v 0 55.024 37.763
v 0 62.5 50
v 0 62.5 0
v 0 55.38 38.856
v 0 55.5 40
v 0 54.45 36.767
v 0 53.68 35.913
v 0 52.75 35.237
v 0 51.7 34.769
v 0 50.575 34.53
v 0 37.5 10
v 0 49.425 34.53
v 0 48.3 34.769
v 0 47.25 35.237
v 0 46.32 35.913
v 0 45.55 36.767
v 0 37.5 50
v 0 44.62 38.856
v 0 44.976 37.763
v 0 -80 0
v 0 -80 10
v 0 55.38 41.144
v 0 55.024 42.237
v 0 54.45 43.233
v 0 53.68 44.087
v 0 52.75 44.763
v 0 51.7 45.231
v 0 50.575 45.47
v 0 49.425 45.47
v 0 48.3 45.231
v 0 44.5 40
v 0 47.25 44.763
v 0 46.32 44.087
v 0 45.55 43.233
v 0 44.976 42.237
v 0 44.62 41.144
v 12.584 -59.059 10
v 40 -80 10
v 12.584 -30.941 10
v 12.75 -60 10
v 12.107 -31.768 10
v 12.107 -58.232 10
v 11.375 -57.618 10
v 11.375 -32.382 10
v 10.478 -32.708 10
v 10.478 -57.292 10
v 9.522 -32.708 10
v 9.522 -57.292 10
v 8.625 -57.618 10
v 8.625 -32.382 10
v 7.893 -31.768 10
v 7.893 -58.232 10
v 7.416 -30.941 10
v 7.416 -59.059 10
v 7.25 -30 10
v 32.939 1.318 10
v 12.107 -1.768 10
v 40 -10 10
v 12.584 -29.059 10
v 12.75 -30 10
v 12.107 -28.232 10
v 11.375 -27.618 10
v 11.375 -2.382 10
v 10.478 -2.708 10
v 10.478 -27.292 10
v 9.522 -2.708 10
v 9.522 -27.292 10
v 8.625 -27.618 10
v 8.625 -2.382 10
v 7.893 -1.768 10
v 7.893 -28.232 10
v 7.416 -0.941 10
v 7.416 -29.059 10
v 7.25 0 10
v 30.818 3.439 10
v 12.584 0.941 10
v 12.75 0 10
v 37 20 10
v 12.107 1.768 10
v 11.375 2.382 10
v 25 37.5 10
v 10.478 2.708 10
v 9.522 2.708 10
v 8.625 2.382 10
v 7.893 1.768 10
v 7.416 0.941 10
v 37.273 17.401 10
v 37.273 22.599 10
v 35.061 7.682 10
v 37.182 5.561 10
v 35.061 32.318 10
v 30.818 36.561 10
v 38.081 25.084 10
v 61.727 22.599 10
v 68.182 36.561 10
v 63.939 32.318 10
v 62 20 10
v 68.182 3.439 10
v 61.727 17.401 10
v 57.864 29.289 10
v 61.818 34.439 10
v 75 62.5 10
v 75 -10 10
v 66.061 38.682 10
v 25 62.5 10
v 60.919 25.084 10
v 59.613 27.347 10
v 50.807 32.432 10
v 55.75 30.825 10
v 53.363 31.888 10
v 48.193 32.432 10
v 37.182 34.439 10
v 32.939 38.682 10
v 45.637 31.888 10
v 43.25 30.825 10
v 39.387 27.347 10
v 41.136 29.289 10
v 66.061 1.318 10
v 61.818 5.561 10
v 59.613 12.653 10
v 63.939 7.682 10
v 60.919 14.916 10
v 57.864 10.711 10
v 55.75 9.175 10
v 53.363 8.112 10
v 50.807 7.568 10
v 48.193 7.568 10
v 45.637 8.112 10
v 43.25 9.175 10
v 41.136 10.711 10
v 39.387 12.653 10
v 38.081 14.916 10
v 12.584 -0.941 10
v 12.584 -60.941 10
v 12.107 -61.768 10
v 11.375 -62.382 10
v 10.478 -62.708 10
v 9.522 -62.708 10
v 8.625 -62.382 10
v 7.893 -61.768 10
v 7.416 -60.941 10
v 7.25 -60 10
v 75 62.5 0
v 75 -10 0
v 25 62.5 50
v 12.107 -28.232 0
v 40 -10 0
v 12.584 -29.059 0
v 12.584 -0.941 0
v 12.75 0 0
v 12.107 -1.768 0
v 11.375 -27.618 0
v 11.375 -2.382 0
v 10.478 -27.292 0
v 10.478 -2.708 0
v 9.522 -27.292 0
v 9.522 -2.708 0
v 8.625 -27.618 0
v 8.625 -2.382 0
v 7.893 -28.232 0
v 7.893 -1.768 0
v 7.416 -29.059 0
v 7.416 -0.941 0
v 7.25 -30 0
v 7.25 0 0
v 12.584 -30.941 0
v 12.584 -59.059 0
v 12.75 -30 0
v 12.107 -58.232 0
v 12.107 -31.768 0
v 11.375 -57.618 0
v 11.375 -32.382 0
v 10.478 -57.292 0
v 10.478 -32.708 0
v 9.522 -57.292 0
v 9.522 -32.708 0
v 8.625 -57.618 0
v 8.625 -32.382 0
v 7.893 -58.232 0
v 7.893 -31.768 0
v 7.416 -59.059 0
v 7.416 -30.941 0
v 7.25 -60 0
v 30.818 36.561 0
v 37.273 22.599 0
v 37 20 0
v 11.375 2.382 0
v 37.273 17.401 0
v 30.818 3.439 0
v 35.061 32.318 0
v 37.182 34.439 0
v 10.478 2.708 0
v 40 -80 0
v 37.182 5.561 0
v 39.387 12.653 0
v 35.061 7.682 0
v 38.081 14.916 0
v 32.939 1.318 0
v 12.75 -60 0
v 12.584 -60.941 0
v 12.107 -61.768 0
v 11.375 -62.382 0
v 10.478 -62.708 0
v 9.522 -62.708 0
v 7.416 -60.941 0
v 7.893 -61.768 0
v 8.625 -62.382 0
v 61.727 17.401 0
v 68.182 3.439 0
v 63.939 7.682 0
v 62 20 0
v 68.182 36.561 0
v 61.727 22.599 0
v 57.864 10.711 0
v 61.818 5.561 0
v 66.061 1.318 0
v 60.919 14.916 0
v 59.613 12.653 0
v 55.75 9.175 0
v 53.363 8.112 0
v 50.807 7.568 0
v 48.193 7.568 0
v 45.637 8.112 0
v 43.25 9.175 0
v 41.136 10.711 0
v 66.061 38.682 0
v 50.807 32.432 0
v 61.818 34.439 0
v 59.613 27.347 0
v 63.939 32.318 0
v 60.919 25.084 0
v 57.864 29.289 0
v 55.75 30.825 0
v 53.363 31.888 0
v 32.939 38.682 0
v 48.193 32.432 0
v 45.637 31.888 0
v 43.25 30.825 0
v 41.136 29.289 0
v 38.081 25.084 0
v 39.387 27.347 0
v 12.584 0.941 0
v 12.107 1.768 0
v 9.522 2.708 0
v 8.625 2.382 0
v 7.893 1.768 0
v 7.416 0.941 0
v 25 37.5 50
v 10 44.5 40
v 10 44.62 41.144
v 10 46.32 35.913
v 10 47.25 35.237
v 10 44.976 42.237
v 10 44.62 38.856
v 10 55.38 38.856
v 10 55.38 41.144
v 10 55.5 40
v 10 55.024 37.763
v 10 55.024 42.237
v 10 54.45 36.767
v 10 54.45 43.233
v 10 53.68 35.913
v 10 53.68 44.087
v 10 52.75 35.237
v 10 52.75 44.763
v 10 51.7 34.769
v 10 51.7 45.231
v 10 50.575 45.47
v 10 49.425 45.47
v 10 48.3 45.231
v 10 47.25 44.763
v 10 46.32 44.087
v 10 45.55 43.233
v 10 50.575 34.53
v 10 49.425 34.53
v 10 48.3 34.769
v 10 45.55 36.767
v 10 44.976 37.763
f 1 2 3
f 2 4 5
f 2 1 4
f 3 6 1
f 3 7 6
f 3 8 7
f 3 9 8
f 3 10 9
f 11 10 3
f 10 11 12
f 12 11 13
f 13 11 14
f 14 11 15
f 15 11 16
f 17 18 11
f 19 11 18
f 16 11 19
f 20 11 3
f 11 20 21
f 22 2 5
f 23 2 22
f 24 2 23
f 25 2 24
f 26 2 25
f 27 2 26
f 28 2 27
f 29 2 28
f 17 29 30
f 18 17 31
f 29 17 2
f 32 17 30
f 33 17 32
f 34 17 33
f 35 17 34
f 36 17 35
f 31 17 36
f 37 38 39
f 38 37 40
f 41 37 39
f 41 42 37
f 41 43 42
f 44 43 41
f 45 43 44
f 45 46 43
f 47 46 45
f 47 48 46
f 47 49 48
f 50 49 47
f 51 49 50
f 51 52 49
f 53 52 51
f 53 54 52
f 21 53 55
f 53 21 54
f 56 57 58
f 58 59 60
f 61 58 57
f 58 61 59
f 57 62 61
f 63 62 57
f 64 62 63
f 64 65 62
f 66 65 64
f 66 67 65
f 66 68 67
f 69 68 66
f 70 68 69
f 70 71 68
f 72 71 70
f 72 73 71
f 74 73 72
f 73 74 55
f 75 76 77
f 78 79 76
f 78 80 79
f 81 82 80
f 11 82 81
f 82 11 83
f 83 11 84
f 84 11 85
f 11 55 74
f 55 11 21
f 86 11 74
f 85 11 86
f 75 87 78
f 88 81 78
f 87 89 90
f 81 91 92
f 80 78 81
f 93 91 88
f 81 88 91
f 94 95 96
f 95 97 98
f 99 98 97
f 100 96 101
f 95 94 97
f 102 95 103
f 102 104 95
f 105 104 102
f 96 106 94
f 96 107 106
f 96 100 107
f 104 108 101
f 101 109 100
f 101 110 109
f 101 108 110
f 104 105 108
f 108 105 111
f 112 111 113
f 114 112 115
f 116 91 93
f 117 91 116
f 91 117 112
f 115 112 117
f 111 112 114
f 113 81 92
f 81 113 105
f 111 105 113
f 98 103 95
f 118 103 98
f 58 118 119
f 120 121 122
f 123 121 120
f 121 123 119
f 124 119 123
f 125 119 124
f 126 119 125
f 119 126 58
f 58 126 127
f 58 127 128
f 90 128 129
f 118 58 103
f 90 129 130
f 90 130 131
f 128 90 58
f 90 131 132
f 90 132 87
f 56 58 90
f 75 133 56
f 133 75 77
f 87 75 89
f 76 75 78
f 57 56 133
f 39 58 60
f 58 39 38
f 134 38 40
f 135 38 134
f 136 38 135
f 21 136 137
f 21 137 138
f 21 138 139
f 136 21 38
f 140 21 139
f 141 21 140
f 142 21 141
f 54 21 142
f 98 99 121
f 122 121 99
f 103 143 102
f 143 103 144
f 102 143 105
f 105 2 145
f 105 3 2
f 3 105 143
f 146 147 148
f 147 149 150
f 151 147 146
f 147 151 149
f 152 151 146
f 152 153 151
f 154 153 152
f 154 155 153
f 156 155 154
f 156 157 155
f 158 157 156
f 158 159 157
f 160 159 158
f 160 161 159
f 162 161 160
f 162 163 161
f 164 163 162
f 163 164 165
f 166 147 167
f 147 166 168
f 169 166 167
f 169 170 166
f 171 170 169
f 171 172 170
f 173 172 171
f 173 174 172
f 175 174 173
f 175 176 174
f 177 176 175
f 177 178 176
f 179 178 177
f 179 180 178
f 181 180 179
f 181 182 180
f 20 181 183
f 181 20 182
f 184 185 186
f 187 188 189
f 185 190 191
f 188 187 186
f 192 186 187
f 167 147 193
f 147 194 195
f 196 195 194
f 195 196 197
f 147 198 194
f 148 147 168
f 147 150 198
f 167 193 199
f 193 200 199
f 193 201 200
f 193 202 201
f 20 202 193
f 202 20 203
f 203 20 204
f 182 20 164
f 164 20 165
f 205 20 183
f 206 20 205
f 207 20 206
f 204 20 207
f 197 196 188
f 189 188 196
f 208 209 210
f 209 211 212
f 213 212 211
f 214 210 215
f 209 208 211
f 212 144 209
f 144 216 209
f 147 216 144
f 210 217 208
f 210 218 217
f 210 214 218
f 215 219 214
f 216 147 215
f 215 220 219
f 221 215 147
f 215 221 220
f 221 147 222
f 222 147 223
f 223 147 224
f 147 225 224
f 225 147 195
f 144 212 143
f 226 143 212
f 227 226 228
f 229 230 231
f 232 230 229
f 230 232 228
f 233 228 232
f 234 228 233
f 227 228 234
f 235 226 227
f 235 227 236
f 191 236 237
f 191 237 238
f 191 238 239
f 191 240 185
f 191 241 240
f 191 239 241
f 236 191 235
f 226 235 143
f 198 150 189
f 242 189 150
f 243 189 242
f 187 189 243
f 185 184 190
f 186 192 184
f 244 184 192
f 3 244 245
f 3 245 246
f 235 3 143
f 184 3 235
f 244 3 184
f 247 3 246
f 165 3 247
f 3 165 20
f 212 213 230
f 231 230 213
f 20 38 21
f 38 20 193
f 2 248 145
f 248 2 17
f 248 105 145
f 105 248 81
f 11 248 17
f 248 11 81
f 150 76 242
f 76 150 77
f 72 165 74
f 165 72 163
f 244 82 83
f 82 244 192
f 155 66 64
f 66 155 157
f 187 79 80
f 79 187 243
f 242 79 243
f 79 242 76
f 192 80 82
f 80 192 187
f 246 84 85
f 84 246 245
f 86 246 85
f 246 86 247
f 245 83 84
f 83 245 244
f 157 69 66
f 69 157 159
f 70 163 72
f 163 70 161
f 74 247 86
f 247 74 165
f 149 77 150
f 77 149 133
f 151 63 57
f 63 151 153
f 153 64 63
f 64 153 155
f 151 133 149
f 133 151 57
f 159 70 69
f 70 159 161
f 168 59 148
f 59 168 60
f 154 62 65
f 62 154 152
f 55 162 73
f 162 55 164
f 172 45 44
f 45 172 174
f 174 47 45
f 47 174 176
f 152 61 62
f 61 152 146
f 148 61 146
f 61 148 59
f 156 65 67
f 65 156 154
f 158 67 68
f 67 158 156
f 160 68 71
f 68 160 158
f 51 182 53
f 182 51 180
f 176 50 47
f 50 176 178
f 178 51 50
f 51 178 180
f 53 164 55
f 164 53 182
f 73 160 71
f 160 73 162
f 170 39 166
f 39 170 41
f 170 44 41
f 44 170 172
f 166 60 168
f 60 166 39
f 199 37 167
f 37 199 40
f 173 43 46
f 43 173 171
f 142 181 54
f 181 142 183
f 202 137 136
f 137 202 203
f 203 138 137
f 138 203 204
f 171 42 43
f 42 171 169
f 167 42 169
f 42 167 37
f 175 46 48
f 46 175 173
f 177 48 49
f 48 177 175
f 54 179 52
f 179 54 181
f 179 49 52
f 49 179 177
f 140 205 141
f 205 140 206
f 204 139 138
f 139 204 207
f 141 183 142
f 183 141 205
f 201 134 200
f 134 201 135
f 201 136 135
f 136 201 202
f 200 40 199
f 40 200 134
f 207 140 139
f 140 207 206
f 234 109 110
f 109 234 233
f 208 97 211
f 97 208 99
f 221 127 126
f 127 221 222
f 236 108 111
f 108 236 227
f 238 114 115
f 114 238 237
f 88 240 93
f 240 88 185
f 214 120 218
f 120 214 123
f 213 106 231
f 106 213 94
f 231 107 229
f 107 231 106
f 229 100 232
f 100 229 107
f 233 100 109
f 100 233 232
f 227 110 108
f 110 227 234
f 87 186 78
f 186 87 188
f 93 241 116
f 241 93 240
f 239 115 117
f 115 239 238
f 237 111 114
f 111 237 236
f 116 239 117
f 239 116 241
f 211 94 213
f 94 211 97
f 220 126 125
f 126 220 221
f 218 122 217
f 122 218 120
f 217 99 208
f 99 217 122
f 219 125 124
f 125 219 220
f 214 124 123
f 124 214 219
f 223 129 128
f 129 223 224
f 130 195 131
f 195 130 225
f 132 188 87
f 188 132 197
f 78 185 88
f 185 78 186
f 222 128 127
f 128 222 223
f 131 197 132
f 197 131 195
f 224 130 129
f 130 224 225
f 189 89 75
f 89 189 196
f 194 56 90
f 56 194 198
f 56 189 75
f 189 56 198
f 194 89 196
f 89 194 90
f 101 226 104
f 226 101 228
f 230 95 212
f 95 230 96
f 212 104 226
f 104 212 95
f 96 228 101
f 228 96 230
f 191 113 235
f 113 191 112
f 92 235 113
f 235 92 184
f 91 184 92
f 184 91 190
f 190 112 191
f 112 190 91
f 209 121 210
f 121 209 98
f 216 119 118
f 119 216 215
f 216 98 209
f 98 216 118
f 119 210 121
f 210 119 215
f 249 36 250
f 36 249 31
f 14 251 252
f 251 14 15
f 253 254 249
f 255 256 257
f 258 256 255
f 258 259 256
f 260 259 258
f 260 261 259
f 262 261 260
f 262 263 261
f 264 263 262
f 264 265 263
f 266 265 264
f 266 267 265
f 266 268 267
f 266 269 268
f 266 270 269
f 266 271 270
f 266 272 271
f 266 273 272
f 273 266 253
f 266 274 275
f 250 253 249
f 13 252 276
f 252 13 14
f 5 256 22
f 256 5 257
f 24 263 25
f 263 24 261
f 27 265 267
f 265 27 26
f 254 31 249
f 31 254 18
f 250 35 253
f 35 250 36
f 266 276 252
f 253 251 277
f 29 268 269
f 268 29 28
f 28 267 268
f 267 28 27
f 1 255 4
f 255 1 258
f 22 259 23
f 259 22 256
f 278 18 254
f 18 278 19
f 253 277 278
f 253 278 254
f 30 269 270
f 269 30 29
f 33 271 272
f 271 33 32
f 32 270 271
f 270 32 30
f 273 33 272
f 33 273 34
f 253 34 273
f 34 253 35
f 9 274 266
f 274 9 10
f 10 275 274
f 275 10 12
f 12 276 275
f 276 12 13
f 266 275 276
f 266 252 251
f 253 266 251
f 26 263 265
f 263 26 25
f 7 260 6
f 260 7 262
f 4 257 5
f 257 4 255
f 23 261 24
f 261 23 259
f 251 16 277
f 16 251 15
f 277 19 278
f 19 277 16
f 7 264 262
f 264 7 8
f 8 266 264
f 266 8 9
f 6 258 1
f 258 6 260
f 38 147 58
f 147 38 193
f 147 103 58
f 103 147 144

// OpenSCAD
// file: functions.scad
barwidth = 20;
width_ridge=4;
widthNema17=43;

rodYOffset = 50;
pulleygt2InclBeltDia = 13.5;
timingbeltthickness=1;
beltoffset = 20;

b624zzdia = 13;


module drawHoles(holes) {
    for(i = holes) {
		translate([ i[0],i[1],-0.1])
			cylinder(h=100,r=i[2]/2, center = false, $fs=1);
	}
}

module nema17(x,y,thickness) {
    nema17holeOffset =6;
    nema17innerHole=25/2;
    nema17Shaft=8/2;
    nema17HoleDistance =31;
    
    /* large NEMA17 circle */
    translate([x,y,-10]) 
        cylinder(h=thickness,r=nema17innerHole, center = false, $fs=1);


    translate([x-nema17HoleDistance/2
        , y-nema17HoleDistance/2
        , -1
    ])
        rotate([0,0,-45])
            cube([3,6,thickness],true);


    translate([x+nema17HoleDistance/2
        ,y+nema17HoleDistance/2
        , -1
    ])
        rotate([0,0,-45])
            cube([3,6,thickness],true);

    translate([x-nema17HoleDistance/2
        ,y+nema17HoleDistance/2
        , -1
    ])
        rotate([0,0,45])
            cube([3,6,thickness],true);

    translate([x+nema17HoleDistance/2
        ,y-nema17HoleDistance/2
        , -1
    ])
        rotate([0,0,45])
            cube([3,6,thickness],true);
    
}
// main file
offsetx =8;
offsety  =9;
barpositionz=30;
rodwidth =10;

include <functions.scad>;

towerWidth = 25;
depth = barwidth+widthNema17+offsety+3;
width = barwidth*4 + rodYOffset+towerWidth/2;


thickness=10;
spacing_bars = 50;
holespacing = 30;

 

holes = [

	[barwidth /2,0 ,5.5],
	[barwidth /2,-holespacing ,5.5],
    [barwidth /2,-holespacing*2 ,5.5],
];



difference() {
    union() {
        
        /* base */
        translate([0,-barwidth*4 ,0]) 
            cube([depth,width,thickness],false);

        translate([0,rodYOffset - towerWidth/2,thickness]) 
            cube([towerWidth,towerWidth,barpositionz- thickness+barwidth],false);
    }
    
    translate([barwidth/2,rodYOffset,barpositionz- thickness+20]) 
        rotate([90,0,270])
            cylinder(h=15,r=rodwidth/2+0.5, center = false, $fs=1);
    
    translate([barwidth*2,-barwidth*4 ,0]) 
        cube([depth,barwidth*3.5,thickness],false);

    drawHoles(holes);

    nema17(barwidth+widthNema17/2 + offsetx
        , beltoffset
        , 30
    );

}
